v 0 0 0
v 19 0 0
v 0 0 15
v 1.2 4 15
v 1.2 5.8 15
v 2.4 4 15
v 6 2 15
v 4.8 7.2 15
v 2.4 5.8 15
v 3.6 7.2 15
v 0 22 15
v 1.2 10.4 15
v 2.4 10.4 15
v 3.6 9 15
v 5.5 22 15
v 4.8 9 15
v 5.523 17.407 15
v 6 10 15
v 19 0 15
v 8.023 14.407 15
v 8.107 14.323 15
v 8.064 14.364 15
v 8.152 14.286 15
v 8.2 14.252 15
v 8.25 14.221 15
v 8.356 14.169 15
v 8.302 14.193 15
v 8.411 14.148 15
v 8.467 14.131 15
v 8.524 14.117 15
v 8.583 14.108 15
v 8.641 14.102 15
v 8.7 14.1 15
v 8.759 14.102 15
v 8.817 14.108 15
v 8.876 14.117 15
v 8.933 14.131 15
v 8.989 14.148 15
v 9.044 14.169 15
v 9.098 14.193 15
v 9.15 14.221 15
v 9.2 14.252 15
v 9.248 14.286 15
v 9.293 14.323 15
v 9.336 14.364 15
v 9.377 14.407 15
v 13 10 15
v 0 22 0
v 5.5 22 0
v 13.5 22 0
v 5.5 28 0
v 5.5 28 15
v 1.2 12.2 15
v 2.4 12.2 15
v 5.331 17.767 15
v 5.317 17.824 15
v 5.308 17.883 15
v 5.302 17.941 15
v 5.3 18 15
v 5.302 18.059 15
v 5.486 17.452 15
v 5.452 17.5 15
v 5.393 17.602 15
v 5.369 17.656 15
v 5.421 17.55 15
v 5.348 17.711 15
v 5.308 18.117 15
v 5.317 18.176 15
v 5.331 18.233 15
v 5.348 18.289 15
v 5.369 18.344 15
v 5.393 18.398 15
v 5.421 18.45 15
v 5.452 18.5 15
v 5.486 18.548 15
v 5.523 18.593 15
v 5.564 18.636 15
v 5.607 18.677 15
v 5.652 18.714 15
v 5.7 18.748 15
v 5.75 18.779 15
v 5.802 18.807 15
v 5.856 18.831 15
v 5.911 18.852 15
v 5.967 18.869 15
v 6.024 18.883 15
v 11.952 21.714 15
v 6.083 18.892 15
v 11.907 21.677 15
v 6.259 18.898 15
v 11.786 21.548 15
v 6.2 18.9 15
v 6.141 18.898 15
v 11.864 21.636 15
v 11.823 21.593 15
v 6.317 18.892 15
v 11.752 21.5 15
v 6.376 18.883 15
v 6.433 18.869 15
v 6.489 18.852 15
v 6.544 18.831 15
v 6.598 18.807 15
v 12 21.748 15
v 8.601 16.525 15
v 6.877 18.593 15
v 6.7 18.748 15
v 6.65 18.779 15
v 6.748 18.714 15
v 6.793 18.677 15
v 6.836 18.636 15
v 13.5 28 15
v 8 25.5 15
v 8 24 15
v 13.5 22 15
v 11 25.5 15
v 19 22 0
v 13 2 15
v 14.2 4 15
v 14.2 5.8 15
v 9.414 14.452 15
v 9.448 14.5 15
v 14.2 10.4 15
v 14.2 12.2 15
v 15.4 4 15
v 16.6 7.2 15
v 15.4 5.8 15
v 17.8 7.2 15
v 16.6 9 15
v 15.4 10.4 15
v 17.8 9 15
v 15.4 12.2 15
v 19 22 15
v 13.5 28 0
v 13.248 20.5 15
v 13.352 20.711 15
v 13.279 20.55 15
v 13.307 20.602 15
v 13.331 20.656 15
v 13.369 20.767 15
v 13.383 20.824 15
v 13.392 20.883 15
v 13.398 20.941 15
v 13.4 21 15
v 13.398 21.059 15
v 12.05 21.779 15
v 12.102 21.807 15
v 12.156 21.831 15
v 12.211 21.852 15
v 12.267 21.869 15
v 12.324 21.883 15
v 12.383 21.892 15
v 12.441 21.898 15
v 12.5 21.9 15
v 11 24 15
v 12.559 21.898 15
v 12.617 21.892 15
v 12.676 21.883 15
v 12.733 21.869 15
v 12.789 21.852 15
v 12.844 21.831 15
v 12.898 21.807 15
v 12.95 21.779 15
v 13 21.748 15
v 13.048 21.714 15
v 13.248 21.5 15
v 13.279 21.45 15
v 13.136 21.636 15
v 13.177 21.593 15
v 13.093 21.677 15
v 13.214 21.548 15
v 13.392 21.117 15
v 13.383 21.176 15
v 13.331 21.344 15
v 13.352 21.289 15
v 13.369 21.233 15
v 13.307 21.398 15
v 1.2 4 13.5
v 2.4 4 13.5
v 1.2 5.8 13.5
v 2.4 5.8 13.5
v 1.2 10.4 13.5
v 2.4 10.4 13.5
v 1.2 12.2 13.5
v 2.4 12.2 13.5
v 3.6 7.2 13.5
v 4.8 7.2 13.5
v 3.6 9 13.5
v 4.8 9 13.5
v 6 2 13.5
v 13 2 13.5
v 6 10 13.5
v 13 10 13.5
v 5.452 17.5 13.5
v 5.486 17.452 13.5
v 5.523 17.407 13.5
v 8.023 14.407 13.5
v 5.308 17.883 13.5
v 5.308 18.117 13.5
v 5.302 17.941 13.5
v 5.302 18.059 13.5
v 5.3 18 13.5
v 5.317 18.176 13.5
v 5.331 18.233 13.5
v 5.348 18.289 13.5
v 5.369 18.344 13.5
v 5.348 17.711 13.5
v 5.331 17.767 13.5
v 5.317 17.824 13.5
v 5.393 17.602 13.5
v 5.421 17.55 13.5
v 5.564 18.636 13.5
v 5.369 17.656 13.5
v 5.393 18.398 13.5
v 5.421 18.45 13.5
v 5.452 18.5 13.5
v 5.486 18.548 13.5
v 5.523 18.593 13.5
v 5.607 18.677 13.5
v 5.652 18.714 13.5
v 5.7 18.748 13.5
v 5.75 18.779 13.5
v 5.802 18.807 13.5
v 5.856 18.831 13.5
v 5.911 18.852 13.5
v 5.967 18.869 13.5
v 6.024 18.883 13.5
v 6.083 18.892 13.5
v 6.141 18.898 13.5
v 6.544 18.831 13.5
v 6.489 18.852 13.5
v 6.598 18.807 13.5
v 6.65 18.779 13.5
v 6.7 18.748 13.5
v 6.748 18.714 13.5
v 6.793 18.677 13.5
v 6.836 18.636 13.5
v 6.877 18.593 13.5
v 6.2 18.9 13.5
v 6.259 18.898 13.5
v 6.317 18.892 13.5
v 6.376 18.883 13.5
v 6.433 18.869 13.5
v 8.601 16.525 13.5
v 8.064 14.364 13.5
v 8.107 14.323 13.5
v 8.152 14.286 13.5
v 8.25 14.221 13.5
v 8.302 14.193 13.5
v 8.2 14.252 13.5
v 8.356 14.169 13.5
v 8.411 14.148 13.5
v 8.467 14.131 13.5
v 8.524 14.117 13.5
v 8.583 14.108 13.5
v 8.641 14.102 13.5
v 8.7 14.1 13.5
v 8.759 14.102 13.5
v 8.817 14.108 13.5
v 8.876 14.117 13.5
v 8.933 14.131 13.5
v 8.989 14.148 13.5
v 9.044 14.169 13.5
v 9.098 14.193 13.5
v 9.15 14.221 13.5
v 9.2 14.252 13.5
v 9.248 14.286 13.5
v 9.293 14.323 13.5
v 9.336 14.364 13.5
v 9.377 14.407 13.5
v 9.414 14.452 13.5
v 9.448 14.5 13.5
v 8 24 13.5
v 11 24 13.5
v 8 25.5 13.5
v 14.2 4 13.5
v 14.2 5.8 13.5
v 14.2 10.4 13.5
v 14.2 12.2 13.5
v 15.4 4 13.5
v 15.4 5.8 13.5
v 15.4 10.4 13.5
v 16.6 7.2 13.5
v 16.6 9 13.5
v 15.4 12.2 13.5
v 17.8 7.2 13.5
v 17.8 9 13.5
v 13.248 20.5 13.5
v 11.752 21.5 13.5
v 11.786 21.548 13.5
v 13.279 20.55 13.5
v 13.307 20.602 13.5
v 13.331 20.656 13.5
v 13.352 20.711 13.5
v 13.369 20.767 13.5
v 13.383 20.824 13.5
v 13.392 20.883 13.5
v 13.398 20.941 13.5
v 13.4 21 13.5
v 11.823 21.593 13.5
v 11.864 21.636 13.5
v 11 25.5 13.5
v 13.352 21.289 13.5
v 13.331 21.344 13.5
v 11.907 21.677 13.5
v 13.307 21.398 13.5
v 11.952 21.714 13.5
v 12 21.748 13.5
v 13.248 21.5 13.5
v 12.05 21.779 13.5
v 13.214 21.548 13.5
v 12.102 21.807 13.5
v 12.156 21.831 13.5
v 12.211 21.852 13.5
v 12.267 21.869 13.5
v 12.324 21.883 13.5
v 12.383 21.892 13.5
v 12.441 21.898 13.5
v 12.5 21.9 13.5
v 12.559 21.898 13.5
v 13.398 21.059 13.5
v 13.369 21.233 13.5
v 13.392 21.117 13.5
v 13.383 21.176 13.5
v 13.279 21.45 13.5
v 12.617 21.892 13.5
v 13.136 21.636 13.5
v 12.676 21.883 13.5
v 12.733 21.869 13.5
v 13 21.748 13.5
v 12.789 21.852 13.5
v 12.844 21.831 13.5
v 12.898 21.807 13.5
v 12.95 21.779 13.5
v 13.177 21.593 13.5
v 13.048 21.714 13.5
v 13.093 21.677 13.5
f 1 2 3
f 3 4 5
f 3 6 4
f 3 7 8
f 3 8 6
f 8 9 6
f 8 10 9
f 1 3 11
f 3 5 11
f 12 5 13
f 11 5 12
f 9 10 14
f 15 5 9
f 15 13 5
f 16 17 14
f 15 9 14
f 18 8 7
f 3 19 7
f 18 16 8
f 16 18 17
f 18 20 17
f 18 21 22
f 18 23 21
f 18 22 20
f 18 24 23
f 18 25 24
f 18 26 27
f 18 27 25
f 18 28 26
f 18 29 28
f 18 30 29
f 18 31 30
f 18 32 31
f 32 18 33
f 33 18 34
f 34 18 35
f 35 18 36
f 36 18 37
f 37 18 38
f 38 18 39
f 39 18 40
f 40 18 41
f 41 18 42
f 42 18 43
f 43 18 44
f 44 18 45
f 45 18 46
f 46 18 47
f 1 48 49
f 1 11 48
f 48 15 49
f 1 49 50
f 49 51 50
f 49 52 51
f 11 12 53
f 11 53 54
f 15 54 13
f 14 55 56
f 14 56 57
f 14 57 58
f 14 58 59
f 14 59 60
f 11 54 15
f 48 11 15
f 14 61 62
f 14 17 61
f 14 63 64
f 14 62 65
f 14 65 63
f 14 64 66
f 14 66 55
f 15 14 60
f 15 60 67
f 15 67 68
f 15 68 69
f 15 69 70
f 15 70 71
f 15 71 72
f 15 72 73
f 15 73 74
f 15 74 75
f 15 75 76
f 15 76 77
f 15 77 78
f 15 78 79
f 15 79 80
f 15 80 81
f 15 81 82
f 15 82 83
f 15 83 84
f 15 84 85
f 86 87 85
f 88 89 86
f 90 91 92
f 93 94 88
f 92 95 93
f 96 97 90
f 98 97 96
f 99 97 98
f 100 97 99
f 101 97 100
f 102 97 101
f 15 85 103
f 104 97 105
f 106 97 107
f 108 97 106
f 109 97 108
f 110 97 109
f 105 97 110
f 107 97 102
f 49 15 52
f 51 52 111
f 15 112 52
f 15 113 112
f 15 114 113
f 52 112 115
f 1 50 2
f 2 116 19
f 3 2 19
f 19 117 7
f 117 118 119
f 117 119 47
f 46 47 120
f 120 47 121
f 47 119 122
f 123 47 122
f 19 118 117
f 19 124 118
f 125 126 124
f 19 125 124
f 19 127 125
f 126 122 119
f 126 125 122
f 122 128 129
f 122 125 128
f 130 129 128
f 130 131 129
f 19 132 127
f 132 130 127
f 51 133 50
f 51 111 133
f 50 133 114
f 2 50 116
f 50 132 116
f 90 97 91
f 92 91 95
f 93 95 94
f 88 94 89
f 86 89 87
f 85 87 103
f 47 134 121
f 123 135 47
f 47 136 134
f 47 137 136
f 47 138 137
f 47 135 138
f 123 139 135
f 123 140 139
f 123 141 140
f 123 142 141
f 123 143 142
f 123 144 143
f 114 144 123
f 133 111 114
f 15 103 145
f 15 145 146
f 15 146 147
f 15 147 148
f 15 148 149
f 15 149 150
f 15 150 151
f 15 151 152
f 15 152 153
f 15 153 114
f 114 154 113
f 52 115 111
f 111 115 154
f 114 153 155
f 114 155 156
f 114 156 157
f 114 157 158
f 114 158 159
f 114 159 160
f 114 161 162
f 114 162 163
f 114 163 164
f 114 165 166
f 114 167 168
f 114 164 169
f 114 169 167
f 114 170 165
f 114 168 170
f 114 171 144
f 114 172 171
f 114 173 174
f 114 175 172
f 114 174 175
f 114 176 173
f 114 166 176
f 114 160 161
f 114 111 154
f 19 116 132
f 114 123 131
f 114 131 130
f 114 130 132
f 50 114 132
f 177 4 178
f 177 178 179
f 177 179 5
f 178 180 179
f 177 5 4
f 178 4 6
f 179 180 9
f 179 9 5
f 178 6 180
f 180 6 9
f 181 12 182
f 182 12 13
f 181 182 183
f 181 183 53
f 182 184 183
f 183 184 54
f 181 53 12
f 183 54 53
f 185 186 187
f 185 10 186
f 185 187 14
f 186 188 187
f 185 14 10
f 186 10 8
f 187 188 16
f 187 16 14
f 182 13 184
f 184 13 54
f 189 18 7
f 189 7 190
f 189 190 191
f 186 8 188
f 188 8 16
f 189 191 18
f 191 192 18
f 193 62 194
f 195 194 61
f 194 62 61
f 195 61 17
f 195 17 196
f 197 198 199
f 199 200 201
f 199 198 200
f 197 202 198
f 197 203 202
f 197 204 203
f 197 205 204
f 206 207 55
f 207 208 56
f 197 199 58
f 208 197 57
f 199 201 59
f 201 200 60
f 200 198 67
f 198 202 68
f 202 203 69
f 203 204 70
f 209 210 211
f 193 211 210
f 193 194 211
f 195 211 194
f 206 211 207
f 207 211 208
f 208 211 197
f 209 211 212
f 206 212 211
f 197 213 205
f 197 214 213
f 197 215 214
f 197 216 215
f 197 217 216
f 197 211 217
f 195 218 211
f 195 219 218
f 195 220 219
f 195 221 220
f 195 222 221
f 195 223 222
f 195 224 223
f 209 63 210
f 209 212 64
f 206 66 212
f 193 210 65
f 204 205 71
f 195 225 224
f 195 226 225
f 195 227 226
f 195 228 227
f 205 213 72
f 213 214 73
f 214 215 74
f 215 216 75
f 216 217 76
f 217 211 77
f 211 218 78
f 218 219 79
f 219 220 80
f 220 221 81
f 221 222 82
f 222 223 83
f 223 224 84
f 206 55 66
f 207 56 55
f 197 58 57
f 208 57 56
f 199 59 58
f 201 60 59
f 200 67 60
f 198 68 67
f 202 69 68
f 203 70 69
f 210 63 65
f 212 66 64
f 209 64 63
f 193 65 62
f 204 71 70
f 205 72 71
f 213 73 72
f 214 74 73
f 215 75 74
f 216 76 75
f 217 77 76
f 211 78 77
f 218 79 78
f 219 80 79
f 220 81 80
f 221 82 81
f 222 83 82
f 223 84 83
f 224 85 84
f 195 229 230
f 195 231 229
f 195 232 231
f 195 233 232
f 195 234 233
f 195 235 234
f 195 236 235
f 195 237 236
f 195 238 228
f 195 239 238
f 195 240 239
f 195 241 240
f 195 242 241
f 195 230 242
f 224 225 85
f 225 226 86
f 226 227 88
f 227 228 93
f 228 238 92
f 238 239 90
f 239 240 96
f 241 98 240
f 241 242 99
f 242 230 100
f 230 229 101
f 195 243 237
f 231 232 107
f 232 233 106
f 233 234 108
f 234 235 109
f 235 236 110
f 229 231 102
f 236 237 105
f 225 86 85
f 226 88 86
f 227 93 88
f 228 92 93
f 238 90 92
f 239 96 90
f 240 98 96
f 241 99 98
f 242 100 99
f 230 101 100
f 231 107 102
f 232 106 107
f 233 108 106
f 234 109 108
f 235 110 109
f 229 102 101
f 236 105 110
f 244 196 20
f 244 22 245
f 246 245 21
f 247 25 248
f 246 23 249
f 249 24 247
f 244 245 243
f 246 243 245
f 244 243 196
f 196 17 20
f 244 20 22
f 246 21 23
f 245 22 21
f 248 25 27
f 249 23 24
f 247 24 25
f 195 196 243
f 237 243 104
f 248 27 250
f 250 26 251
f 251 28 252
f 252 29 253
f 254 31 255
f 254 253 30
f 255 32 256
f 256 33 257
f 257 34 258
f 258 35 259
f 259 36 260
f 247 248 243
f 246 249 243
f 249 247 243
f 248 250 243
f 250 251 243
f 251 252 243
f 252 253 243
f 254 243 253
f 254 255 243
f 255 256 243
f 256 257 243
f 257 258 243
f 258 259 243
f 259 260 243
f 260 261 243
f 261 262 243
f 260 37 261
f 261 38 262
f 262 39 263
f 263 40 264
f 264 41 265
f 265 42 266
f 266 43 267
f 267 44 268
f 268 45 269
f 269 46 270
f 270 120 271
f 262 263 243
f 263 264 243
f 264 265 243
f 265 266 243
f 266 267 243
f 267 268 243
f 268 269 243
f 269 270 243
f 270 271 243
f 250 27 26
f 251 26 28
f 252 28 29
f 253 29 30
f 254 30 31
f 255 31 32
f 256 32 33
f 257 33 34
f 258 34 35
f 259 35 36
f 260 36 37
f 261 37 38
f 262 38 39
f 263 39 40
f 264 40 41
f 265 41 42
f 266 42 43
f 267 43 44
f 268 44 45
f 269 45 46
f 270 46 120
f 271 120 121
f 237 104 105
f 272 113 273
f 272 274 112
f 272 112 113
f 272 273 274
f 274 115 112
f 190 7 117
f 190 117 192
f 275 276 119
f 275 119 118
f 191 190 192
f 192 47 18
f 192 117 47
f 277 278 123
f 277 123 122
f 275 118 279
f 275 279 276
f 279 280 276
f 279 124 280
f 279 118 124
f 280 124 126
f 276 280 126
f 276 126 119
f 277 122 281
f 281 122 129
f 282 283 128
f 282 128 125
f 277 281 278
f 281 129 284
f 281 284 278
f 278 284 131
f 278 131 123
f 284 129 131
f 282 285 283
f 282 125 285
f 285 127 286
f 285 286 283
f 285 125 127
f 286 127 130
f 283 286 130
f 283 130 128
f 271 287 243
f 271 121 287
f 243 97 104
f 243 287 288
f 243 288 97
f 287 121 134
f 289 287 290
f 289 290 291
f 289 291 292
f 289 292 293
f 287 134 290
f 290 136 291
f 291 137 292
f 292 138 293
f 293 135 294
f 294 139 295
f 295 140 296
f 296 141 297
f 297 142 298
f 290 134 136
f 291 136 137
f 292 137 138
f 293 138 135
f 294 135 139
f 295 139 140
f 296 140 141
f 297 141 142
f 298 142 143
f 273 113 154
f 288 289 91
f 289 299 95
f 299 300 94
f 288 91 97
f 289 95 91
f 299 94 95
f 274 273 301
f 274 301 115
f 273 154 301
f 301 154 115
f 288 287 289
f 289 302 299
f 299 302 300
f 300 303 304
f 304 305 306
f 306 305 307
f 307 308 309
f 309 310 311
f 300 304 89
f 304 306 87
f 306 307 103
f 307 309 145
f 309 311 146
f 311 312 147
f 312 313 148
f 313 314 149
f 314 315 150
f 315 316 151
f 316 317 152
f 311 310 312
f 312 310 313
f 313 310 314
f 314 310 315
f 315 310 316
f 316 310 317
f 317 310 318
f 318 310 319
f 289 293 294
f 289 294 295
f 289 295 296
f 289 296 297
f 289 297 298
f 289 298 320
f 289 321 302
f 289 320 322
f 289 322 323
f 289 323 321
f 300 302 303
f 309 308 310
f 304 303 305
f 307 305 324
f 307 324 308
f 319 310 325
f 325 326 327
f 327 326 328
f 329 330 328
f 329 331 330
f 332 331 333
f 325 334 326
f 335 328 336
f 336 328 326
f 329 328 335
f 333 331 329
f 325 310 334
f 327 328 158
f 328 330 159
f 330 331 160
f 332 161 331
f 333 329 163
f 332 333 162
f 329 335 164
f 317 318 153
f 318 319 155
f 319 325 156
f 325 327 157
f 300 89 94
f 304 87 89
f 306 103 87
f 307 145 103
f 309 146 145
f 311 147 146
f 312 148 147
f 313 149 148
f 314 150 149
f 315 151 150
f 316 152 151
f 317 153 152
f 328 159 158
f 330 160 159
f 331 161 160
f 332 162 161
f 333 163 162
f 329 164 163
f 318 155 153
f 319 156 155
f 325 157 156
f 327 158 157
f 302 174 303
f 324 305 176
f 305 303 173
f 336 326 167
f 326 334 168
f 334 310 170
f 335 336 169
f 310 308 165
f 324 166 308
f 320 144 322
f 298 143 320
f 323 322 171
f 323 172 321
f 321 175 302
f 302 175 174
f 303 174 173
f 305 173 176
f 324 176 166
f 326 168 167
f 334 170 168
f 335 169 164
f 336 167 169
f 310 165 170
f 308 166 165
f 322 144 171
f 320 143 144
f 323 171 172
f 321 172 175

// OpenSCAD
// Building facade miniature for board games.
// Millimetres. X=width, Y=height, Z=depth.
// Print flat at Z=0; straight base at Y=0; front at Z=15.
// All recesses are blind and 1.5 mm deep. This is a solid piece.
$fn=96;
depth=15;
recess=1.5;
module rect(x,y,w,h) { translate([x,y]) square([w,h]); }
module disc(x,y,r) { translate([x,y]) circle(r=r); }
module line(a,b,w=1.4) {
    hull() { translate(a) circle(d=w); translate(b) circle(d=w); }
}
module frame(x,y,w,h,t=1.4) {
    difference() { rect(x,y,w,h); rect(x+t,y+t,w-2*t,h-2*t); }
}
module gear(x,y,r=6,inner=2.4) {
    translate([x,y]) difference() {
        polygon([for(i=[0:(r<4?15:23)]) let(n=(r<4?16:24),a=(i+1)*360/n,rr=(i%4<2?r:r-min(1.5,r*0.21))) [rr*cos(a),rr*sin(a)]]);
        circle(r=inner);
    }
}
module car(x,y,w=14,h=5) {
    translate([x,y]) union() {
        polygon([[0,0.8],[0,h*0.48],[w*0.2,h*0.48],
                 [w*0.35,h],[w*0.67,h],[w*0.82,h*0.48],
                 [w,h*0.35],[w,0.8]]);
        disc(w*0.23,0.8,1.3); disc(w*0.77,0.8,1.3);
    }
}
module recycling(x,y,r=6) {
    translate([x,y]) for(a=[0,120,240]) rotate(a) {
        line([-3.8,3.2],[1.2,3.2],1.6);
        polygon([[1.2,1.7],[4.2,3.2],[1.2,4.7]]);
    }
}
module cutface() { translate([0,0,depth-recess]) linear_extrude(height=recess+0.5) facade(); }
// All details are recessed into the same solid facade.
difference() {
    linear_extrude(height=depth) outline();
    cutface();
}


module outline() {
    union() { rect(0,0,19,22); rect(5.5,20,8,8); }
}
module facade() {
    rect(6,2,7,8);
    line([6.2,18],[8.7,15],1.8); line([8.7,15],[12.5,21],1.8);
    for(x=[1.2,14.2]) {
        rect(x,4,1.2,1.8); rect(x+2.4,7.2,1.2,1.8);
        rect(x,10.4,1.2,1.8);
    }
    rect(8,24,3,1.5);
}
